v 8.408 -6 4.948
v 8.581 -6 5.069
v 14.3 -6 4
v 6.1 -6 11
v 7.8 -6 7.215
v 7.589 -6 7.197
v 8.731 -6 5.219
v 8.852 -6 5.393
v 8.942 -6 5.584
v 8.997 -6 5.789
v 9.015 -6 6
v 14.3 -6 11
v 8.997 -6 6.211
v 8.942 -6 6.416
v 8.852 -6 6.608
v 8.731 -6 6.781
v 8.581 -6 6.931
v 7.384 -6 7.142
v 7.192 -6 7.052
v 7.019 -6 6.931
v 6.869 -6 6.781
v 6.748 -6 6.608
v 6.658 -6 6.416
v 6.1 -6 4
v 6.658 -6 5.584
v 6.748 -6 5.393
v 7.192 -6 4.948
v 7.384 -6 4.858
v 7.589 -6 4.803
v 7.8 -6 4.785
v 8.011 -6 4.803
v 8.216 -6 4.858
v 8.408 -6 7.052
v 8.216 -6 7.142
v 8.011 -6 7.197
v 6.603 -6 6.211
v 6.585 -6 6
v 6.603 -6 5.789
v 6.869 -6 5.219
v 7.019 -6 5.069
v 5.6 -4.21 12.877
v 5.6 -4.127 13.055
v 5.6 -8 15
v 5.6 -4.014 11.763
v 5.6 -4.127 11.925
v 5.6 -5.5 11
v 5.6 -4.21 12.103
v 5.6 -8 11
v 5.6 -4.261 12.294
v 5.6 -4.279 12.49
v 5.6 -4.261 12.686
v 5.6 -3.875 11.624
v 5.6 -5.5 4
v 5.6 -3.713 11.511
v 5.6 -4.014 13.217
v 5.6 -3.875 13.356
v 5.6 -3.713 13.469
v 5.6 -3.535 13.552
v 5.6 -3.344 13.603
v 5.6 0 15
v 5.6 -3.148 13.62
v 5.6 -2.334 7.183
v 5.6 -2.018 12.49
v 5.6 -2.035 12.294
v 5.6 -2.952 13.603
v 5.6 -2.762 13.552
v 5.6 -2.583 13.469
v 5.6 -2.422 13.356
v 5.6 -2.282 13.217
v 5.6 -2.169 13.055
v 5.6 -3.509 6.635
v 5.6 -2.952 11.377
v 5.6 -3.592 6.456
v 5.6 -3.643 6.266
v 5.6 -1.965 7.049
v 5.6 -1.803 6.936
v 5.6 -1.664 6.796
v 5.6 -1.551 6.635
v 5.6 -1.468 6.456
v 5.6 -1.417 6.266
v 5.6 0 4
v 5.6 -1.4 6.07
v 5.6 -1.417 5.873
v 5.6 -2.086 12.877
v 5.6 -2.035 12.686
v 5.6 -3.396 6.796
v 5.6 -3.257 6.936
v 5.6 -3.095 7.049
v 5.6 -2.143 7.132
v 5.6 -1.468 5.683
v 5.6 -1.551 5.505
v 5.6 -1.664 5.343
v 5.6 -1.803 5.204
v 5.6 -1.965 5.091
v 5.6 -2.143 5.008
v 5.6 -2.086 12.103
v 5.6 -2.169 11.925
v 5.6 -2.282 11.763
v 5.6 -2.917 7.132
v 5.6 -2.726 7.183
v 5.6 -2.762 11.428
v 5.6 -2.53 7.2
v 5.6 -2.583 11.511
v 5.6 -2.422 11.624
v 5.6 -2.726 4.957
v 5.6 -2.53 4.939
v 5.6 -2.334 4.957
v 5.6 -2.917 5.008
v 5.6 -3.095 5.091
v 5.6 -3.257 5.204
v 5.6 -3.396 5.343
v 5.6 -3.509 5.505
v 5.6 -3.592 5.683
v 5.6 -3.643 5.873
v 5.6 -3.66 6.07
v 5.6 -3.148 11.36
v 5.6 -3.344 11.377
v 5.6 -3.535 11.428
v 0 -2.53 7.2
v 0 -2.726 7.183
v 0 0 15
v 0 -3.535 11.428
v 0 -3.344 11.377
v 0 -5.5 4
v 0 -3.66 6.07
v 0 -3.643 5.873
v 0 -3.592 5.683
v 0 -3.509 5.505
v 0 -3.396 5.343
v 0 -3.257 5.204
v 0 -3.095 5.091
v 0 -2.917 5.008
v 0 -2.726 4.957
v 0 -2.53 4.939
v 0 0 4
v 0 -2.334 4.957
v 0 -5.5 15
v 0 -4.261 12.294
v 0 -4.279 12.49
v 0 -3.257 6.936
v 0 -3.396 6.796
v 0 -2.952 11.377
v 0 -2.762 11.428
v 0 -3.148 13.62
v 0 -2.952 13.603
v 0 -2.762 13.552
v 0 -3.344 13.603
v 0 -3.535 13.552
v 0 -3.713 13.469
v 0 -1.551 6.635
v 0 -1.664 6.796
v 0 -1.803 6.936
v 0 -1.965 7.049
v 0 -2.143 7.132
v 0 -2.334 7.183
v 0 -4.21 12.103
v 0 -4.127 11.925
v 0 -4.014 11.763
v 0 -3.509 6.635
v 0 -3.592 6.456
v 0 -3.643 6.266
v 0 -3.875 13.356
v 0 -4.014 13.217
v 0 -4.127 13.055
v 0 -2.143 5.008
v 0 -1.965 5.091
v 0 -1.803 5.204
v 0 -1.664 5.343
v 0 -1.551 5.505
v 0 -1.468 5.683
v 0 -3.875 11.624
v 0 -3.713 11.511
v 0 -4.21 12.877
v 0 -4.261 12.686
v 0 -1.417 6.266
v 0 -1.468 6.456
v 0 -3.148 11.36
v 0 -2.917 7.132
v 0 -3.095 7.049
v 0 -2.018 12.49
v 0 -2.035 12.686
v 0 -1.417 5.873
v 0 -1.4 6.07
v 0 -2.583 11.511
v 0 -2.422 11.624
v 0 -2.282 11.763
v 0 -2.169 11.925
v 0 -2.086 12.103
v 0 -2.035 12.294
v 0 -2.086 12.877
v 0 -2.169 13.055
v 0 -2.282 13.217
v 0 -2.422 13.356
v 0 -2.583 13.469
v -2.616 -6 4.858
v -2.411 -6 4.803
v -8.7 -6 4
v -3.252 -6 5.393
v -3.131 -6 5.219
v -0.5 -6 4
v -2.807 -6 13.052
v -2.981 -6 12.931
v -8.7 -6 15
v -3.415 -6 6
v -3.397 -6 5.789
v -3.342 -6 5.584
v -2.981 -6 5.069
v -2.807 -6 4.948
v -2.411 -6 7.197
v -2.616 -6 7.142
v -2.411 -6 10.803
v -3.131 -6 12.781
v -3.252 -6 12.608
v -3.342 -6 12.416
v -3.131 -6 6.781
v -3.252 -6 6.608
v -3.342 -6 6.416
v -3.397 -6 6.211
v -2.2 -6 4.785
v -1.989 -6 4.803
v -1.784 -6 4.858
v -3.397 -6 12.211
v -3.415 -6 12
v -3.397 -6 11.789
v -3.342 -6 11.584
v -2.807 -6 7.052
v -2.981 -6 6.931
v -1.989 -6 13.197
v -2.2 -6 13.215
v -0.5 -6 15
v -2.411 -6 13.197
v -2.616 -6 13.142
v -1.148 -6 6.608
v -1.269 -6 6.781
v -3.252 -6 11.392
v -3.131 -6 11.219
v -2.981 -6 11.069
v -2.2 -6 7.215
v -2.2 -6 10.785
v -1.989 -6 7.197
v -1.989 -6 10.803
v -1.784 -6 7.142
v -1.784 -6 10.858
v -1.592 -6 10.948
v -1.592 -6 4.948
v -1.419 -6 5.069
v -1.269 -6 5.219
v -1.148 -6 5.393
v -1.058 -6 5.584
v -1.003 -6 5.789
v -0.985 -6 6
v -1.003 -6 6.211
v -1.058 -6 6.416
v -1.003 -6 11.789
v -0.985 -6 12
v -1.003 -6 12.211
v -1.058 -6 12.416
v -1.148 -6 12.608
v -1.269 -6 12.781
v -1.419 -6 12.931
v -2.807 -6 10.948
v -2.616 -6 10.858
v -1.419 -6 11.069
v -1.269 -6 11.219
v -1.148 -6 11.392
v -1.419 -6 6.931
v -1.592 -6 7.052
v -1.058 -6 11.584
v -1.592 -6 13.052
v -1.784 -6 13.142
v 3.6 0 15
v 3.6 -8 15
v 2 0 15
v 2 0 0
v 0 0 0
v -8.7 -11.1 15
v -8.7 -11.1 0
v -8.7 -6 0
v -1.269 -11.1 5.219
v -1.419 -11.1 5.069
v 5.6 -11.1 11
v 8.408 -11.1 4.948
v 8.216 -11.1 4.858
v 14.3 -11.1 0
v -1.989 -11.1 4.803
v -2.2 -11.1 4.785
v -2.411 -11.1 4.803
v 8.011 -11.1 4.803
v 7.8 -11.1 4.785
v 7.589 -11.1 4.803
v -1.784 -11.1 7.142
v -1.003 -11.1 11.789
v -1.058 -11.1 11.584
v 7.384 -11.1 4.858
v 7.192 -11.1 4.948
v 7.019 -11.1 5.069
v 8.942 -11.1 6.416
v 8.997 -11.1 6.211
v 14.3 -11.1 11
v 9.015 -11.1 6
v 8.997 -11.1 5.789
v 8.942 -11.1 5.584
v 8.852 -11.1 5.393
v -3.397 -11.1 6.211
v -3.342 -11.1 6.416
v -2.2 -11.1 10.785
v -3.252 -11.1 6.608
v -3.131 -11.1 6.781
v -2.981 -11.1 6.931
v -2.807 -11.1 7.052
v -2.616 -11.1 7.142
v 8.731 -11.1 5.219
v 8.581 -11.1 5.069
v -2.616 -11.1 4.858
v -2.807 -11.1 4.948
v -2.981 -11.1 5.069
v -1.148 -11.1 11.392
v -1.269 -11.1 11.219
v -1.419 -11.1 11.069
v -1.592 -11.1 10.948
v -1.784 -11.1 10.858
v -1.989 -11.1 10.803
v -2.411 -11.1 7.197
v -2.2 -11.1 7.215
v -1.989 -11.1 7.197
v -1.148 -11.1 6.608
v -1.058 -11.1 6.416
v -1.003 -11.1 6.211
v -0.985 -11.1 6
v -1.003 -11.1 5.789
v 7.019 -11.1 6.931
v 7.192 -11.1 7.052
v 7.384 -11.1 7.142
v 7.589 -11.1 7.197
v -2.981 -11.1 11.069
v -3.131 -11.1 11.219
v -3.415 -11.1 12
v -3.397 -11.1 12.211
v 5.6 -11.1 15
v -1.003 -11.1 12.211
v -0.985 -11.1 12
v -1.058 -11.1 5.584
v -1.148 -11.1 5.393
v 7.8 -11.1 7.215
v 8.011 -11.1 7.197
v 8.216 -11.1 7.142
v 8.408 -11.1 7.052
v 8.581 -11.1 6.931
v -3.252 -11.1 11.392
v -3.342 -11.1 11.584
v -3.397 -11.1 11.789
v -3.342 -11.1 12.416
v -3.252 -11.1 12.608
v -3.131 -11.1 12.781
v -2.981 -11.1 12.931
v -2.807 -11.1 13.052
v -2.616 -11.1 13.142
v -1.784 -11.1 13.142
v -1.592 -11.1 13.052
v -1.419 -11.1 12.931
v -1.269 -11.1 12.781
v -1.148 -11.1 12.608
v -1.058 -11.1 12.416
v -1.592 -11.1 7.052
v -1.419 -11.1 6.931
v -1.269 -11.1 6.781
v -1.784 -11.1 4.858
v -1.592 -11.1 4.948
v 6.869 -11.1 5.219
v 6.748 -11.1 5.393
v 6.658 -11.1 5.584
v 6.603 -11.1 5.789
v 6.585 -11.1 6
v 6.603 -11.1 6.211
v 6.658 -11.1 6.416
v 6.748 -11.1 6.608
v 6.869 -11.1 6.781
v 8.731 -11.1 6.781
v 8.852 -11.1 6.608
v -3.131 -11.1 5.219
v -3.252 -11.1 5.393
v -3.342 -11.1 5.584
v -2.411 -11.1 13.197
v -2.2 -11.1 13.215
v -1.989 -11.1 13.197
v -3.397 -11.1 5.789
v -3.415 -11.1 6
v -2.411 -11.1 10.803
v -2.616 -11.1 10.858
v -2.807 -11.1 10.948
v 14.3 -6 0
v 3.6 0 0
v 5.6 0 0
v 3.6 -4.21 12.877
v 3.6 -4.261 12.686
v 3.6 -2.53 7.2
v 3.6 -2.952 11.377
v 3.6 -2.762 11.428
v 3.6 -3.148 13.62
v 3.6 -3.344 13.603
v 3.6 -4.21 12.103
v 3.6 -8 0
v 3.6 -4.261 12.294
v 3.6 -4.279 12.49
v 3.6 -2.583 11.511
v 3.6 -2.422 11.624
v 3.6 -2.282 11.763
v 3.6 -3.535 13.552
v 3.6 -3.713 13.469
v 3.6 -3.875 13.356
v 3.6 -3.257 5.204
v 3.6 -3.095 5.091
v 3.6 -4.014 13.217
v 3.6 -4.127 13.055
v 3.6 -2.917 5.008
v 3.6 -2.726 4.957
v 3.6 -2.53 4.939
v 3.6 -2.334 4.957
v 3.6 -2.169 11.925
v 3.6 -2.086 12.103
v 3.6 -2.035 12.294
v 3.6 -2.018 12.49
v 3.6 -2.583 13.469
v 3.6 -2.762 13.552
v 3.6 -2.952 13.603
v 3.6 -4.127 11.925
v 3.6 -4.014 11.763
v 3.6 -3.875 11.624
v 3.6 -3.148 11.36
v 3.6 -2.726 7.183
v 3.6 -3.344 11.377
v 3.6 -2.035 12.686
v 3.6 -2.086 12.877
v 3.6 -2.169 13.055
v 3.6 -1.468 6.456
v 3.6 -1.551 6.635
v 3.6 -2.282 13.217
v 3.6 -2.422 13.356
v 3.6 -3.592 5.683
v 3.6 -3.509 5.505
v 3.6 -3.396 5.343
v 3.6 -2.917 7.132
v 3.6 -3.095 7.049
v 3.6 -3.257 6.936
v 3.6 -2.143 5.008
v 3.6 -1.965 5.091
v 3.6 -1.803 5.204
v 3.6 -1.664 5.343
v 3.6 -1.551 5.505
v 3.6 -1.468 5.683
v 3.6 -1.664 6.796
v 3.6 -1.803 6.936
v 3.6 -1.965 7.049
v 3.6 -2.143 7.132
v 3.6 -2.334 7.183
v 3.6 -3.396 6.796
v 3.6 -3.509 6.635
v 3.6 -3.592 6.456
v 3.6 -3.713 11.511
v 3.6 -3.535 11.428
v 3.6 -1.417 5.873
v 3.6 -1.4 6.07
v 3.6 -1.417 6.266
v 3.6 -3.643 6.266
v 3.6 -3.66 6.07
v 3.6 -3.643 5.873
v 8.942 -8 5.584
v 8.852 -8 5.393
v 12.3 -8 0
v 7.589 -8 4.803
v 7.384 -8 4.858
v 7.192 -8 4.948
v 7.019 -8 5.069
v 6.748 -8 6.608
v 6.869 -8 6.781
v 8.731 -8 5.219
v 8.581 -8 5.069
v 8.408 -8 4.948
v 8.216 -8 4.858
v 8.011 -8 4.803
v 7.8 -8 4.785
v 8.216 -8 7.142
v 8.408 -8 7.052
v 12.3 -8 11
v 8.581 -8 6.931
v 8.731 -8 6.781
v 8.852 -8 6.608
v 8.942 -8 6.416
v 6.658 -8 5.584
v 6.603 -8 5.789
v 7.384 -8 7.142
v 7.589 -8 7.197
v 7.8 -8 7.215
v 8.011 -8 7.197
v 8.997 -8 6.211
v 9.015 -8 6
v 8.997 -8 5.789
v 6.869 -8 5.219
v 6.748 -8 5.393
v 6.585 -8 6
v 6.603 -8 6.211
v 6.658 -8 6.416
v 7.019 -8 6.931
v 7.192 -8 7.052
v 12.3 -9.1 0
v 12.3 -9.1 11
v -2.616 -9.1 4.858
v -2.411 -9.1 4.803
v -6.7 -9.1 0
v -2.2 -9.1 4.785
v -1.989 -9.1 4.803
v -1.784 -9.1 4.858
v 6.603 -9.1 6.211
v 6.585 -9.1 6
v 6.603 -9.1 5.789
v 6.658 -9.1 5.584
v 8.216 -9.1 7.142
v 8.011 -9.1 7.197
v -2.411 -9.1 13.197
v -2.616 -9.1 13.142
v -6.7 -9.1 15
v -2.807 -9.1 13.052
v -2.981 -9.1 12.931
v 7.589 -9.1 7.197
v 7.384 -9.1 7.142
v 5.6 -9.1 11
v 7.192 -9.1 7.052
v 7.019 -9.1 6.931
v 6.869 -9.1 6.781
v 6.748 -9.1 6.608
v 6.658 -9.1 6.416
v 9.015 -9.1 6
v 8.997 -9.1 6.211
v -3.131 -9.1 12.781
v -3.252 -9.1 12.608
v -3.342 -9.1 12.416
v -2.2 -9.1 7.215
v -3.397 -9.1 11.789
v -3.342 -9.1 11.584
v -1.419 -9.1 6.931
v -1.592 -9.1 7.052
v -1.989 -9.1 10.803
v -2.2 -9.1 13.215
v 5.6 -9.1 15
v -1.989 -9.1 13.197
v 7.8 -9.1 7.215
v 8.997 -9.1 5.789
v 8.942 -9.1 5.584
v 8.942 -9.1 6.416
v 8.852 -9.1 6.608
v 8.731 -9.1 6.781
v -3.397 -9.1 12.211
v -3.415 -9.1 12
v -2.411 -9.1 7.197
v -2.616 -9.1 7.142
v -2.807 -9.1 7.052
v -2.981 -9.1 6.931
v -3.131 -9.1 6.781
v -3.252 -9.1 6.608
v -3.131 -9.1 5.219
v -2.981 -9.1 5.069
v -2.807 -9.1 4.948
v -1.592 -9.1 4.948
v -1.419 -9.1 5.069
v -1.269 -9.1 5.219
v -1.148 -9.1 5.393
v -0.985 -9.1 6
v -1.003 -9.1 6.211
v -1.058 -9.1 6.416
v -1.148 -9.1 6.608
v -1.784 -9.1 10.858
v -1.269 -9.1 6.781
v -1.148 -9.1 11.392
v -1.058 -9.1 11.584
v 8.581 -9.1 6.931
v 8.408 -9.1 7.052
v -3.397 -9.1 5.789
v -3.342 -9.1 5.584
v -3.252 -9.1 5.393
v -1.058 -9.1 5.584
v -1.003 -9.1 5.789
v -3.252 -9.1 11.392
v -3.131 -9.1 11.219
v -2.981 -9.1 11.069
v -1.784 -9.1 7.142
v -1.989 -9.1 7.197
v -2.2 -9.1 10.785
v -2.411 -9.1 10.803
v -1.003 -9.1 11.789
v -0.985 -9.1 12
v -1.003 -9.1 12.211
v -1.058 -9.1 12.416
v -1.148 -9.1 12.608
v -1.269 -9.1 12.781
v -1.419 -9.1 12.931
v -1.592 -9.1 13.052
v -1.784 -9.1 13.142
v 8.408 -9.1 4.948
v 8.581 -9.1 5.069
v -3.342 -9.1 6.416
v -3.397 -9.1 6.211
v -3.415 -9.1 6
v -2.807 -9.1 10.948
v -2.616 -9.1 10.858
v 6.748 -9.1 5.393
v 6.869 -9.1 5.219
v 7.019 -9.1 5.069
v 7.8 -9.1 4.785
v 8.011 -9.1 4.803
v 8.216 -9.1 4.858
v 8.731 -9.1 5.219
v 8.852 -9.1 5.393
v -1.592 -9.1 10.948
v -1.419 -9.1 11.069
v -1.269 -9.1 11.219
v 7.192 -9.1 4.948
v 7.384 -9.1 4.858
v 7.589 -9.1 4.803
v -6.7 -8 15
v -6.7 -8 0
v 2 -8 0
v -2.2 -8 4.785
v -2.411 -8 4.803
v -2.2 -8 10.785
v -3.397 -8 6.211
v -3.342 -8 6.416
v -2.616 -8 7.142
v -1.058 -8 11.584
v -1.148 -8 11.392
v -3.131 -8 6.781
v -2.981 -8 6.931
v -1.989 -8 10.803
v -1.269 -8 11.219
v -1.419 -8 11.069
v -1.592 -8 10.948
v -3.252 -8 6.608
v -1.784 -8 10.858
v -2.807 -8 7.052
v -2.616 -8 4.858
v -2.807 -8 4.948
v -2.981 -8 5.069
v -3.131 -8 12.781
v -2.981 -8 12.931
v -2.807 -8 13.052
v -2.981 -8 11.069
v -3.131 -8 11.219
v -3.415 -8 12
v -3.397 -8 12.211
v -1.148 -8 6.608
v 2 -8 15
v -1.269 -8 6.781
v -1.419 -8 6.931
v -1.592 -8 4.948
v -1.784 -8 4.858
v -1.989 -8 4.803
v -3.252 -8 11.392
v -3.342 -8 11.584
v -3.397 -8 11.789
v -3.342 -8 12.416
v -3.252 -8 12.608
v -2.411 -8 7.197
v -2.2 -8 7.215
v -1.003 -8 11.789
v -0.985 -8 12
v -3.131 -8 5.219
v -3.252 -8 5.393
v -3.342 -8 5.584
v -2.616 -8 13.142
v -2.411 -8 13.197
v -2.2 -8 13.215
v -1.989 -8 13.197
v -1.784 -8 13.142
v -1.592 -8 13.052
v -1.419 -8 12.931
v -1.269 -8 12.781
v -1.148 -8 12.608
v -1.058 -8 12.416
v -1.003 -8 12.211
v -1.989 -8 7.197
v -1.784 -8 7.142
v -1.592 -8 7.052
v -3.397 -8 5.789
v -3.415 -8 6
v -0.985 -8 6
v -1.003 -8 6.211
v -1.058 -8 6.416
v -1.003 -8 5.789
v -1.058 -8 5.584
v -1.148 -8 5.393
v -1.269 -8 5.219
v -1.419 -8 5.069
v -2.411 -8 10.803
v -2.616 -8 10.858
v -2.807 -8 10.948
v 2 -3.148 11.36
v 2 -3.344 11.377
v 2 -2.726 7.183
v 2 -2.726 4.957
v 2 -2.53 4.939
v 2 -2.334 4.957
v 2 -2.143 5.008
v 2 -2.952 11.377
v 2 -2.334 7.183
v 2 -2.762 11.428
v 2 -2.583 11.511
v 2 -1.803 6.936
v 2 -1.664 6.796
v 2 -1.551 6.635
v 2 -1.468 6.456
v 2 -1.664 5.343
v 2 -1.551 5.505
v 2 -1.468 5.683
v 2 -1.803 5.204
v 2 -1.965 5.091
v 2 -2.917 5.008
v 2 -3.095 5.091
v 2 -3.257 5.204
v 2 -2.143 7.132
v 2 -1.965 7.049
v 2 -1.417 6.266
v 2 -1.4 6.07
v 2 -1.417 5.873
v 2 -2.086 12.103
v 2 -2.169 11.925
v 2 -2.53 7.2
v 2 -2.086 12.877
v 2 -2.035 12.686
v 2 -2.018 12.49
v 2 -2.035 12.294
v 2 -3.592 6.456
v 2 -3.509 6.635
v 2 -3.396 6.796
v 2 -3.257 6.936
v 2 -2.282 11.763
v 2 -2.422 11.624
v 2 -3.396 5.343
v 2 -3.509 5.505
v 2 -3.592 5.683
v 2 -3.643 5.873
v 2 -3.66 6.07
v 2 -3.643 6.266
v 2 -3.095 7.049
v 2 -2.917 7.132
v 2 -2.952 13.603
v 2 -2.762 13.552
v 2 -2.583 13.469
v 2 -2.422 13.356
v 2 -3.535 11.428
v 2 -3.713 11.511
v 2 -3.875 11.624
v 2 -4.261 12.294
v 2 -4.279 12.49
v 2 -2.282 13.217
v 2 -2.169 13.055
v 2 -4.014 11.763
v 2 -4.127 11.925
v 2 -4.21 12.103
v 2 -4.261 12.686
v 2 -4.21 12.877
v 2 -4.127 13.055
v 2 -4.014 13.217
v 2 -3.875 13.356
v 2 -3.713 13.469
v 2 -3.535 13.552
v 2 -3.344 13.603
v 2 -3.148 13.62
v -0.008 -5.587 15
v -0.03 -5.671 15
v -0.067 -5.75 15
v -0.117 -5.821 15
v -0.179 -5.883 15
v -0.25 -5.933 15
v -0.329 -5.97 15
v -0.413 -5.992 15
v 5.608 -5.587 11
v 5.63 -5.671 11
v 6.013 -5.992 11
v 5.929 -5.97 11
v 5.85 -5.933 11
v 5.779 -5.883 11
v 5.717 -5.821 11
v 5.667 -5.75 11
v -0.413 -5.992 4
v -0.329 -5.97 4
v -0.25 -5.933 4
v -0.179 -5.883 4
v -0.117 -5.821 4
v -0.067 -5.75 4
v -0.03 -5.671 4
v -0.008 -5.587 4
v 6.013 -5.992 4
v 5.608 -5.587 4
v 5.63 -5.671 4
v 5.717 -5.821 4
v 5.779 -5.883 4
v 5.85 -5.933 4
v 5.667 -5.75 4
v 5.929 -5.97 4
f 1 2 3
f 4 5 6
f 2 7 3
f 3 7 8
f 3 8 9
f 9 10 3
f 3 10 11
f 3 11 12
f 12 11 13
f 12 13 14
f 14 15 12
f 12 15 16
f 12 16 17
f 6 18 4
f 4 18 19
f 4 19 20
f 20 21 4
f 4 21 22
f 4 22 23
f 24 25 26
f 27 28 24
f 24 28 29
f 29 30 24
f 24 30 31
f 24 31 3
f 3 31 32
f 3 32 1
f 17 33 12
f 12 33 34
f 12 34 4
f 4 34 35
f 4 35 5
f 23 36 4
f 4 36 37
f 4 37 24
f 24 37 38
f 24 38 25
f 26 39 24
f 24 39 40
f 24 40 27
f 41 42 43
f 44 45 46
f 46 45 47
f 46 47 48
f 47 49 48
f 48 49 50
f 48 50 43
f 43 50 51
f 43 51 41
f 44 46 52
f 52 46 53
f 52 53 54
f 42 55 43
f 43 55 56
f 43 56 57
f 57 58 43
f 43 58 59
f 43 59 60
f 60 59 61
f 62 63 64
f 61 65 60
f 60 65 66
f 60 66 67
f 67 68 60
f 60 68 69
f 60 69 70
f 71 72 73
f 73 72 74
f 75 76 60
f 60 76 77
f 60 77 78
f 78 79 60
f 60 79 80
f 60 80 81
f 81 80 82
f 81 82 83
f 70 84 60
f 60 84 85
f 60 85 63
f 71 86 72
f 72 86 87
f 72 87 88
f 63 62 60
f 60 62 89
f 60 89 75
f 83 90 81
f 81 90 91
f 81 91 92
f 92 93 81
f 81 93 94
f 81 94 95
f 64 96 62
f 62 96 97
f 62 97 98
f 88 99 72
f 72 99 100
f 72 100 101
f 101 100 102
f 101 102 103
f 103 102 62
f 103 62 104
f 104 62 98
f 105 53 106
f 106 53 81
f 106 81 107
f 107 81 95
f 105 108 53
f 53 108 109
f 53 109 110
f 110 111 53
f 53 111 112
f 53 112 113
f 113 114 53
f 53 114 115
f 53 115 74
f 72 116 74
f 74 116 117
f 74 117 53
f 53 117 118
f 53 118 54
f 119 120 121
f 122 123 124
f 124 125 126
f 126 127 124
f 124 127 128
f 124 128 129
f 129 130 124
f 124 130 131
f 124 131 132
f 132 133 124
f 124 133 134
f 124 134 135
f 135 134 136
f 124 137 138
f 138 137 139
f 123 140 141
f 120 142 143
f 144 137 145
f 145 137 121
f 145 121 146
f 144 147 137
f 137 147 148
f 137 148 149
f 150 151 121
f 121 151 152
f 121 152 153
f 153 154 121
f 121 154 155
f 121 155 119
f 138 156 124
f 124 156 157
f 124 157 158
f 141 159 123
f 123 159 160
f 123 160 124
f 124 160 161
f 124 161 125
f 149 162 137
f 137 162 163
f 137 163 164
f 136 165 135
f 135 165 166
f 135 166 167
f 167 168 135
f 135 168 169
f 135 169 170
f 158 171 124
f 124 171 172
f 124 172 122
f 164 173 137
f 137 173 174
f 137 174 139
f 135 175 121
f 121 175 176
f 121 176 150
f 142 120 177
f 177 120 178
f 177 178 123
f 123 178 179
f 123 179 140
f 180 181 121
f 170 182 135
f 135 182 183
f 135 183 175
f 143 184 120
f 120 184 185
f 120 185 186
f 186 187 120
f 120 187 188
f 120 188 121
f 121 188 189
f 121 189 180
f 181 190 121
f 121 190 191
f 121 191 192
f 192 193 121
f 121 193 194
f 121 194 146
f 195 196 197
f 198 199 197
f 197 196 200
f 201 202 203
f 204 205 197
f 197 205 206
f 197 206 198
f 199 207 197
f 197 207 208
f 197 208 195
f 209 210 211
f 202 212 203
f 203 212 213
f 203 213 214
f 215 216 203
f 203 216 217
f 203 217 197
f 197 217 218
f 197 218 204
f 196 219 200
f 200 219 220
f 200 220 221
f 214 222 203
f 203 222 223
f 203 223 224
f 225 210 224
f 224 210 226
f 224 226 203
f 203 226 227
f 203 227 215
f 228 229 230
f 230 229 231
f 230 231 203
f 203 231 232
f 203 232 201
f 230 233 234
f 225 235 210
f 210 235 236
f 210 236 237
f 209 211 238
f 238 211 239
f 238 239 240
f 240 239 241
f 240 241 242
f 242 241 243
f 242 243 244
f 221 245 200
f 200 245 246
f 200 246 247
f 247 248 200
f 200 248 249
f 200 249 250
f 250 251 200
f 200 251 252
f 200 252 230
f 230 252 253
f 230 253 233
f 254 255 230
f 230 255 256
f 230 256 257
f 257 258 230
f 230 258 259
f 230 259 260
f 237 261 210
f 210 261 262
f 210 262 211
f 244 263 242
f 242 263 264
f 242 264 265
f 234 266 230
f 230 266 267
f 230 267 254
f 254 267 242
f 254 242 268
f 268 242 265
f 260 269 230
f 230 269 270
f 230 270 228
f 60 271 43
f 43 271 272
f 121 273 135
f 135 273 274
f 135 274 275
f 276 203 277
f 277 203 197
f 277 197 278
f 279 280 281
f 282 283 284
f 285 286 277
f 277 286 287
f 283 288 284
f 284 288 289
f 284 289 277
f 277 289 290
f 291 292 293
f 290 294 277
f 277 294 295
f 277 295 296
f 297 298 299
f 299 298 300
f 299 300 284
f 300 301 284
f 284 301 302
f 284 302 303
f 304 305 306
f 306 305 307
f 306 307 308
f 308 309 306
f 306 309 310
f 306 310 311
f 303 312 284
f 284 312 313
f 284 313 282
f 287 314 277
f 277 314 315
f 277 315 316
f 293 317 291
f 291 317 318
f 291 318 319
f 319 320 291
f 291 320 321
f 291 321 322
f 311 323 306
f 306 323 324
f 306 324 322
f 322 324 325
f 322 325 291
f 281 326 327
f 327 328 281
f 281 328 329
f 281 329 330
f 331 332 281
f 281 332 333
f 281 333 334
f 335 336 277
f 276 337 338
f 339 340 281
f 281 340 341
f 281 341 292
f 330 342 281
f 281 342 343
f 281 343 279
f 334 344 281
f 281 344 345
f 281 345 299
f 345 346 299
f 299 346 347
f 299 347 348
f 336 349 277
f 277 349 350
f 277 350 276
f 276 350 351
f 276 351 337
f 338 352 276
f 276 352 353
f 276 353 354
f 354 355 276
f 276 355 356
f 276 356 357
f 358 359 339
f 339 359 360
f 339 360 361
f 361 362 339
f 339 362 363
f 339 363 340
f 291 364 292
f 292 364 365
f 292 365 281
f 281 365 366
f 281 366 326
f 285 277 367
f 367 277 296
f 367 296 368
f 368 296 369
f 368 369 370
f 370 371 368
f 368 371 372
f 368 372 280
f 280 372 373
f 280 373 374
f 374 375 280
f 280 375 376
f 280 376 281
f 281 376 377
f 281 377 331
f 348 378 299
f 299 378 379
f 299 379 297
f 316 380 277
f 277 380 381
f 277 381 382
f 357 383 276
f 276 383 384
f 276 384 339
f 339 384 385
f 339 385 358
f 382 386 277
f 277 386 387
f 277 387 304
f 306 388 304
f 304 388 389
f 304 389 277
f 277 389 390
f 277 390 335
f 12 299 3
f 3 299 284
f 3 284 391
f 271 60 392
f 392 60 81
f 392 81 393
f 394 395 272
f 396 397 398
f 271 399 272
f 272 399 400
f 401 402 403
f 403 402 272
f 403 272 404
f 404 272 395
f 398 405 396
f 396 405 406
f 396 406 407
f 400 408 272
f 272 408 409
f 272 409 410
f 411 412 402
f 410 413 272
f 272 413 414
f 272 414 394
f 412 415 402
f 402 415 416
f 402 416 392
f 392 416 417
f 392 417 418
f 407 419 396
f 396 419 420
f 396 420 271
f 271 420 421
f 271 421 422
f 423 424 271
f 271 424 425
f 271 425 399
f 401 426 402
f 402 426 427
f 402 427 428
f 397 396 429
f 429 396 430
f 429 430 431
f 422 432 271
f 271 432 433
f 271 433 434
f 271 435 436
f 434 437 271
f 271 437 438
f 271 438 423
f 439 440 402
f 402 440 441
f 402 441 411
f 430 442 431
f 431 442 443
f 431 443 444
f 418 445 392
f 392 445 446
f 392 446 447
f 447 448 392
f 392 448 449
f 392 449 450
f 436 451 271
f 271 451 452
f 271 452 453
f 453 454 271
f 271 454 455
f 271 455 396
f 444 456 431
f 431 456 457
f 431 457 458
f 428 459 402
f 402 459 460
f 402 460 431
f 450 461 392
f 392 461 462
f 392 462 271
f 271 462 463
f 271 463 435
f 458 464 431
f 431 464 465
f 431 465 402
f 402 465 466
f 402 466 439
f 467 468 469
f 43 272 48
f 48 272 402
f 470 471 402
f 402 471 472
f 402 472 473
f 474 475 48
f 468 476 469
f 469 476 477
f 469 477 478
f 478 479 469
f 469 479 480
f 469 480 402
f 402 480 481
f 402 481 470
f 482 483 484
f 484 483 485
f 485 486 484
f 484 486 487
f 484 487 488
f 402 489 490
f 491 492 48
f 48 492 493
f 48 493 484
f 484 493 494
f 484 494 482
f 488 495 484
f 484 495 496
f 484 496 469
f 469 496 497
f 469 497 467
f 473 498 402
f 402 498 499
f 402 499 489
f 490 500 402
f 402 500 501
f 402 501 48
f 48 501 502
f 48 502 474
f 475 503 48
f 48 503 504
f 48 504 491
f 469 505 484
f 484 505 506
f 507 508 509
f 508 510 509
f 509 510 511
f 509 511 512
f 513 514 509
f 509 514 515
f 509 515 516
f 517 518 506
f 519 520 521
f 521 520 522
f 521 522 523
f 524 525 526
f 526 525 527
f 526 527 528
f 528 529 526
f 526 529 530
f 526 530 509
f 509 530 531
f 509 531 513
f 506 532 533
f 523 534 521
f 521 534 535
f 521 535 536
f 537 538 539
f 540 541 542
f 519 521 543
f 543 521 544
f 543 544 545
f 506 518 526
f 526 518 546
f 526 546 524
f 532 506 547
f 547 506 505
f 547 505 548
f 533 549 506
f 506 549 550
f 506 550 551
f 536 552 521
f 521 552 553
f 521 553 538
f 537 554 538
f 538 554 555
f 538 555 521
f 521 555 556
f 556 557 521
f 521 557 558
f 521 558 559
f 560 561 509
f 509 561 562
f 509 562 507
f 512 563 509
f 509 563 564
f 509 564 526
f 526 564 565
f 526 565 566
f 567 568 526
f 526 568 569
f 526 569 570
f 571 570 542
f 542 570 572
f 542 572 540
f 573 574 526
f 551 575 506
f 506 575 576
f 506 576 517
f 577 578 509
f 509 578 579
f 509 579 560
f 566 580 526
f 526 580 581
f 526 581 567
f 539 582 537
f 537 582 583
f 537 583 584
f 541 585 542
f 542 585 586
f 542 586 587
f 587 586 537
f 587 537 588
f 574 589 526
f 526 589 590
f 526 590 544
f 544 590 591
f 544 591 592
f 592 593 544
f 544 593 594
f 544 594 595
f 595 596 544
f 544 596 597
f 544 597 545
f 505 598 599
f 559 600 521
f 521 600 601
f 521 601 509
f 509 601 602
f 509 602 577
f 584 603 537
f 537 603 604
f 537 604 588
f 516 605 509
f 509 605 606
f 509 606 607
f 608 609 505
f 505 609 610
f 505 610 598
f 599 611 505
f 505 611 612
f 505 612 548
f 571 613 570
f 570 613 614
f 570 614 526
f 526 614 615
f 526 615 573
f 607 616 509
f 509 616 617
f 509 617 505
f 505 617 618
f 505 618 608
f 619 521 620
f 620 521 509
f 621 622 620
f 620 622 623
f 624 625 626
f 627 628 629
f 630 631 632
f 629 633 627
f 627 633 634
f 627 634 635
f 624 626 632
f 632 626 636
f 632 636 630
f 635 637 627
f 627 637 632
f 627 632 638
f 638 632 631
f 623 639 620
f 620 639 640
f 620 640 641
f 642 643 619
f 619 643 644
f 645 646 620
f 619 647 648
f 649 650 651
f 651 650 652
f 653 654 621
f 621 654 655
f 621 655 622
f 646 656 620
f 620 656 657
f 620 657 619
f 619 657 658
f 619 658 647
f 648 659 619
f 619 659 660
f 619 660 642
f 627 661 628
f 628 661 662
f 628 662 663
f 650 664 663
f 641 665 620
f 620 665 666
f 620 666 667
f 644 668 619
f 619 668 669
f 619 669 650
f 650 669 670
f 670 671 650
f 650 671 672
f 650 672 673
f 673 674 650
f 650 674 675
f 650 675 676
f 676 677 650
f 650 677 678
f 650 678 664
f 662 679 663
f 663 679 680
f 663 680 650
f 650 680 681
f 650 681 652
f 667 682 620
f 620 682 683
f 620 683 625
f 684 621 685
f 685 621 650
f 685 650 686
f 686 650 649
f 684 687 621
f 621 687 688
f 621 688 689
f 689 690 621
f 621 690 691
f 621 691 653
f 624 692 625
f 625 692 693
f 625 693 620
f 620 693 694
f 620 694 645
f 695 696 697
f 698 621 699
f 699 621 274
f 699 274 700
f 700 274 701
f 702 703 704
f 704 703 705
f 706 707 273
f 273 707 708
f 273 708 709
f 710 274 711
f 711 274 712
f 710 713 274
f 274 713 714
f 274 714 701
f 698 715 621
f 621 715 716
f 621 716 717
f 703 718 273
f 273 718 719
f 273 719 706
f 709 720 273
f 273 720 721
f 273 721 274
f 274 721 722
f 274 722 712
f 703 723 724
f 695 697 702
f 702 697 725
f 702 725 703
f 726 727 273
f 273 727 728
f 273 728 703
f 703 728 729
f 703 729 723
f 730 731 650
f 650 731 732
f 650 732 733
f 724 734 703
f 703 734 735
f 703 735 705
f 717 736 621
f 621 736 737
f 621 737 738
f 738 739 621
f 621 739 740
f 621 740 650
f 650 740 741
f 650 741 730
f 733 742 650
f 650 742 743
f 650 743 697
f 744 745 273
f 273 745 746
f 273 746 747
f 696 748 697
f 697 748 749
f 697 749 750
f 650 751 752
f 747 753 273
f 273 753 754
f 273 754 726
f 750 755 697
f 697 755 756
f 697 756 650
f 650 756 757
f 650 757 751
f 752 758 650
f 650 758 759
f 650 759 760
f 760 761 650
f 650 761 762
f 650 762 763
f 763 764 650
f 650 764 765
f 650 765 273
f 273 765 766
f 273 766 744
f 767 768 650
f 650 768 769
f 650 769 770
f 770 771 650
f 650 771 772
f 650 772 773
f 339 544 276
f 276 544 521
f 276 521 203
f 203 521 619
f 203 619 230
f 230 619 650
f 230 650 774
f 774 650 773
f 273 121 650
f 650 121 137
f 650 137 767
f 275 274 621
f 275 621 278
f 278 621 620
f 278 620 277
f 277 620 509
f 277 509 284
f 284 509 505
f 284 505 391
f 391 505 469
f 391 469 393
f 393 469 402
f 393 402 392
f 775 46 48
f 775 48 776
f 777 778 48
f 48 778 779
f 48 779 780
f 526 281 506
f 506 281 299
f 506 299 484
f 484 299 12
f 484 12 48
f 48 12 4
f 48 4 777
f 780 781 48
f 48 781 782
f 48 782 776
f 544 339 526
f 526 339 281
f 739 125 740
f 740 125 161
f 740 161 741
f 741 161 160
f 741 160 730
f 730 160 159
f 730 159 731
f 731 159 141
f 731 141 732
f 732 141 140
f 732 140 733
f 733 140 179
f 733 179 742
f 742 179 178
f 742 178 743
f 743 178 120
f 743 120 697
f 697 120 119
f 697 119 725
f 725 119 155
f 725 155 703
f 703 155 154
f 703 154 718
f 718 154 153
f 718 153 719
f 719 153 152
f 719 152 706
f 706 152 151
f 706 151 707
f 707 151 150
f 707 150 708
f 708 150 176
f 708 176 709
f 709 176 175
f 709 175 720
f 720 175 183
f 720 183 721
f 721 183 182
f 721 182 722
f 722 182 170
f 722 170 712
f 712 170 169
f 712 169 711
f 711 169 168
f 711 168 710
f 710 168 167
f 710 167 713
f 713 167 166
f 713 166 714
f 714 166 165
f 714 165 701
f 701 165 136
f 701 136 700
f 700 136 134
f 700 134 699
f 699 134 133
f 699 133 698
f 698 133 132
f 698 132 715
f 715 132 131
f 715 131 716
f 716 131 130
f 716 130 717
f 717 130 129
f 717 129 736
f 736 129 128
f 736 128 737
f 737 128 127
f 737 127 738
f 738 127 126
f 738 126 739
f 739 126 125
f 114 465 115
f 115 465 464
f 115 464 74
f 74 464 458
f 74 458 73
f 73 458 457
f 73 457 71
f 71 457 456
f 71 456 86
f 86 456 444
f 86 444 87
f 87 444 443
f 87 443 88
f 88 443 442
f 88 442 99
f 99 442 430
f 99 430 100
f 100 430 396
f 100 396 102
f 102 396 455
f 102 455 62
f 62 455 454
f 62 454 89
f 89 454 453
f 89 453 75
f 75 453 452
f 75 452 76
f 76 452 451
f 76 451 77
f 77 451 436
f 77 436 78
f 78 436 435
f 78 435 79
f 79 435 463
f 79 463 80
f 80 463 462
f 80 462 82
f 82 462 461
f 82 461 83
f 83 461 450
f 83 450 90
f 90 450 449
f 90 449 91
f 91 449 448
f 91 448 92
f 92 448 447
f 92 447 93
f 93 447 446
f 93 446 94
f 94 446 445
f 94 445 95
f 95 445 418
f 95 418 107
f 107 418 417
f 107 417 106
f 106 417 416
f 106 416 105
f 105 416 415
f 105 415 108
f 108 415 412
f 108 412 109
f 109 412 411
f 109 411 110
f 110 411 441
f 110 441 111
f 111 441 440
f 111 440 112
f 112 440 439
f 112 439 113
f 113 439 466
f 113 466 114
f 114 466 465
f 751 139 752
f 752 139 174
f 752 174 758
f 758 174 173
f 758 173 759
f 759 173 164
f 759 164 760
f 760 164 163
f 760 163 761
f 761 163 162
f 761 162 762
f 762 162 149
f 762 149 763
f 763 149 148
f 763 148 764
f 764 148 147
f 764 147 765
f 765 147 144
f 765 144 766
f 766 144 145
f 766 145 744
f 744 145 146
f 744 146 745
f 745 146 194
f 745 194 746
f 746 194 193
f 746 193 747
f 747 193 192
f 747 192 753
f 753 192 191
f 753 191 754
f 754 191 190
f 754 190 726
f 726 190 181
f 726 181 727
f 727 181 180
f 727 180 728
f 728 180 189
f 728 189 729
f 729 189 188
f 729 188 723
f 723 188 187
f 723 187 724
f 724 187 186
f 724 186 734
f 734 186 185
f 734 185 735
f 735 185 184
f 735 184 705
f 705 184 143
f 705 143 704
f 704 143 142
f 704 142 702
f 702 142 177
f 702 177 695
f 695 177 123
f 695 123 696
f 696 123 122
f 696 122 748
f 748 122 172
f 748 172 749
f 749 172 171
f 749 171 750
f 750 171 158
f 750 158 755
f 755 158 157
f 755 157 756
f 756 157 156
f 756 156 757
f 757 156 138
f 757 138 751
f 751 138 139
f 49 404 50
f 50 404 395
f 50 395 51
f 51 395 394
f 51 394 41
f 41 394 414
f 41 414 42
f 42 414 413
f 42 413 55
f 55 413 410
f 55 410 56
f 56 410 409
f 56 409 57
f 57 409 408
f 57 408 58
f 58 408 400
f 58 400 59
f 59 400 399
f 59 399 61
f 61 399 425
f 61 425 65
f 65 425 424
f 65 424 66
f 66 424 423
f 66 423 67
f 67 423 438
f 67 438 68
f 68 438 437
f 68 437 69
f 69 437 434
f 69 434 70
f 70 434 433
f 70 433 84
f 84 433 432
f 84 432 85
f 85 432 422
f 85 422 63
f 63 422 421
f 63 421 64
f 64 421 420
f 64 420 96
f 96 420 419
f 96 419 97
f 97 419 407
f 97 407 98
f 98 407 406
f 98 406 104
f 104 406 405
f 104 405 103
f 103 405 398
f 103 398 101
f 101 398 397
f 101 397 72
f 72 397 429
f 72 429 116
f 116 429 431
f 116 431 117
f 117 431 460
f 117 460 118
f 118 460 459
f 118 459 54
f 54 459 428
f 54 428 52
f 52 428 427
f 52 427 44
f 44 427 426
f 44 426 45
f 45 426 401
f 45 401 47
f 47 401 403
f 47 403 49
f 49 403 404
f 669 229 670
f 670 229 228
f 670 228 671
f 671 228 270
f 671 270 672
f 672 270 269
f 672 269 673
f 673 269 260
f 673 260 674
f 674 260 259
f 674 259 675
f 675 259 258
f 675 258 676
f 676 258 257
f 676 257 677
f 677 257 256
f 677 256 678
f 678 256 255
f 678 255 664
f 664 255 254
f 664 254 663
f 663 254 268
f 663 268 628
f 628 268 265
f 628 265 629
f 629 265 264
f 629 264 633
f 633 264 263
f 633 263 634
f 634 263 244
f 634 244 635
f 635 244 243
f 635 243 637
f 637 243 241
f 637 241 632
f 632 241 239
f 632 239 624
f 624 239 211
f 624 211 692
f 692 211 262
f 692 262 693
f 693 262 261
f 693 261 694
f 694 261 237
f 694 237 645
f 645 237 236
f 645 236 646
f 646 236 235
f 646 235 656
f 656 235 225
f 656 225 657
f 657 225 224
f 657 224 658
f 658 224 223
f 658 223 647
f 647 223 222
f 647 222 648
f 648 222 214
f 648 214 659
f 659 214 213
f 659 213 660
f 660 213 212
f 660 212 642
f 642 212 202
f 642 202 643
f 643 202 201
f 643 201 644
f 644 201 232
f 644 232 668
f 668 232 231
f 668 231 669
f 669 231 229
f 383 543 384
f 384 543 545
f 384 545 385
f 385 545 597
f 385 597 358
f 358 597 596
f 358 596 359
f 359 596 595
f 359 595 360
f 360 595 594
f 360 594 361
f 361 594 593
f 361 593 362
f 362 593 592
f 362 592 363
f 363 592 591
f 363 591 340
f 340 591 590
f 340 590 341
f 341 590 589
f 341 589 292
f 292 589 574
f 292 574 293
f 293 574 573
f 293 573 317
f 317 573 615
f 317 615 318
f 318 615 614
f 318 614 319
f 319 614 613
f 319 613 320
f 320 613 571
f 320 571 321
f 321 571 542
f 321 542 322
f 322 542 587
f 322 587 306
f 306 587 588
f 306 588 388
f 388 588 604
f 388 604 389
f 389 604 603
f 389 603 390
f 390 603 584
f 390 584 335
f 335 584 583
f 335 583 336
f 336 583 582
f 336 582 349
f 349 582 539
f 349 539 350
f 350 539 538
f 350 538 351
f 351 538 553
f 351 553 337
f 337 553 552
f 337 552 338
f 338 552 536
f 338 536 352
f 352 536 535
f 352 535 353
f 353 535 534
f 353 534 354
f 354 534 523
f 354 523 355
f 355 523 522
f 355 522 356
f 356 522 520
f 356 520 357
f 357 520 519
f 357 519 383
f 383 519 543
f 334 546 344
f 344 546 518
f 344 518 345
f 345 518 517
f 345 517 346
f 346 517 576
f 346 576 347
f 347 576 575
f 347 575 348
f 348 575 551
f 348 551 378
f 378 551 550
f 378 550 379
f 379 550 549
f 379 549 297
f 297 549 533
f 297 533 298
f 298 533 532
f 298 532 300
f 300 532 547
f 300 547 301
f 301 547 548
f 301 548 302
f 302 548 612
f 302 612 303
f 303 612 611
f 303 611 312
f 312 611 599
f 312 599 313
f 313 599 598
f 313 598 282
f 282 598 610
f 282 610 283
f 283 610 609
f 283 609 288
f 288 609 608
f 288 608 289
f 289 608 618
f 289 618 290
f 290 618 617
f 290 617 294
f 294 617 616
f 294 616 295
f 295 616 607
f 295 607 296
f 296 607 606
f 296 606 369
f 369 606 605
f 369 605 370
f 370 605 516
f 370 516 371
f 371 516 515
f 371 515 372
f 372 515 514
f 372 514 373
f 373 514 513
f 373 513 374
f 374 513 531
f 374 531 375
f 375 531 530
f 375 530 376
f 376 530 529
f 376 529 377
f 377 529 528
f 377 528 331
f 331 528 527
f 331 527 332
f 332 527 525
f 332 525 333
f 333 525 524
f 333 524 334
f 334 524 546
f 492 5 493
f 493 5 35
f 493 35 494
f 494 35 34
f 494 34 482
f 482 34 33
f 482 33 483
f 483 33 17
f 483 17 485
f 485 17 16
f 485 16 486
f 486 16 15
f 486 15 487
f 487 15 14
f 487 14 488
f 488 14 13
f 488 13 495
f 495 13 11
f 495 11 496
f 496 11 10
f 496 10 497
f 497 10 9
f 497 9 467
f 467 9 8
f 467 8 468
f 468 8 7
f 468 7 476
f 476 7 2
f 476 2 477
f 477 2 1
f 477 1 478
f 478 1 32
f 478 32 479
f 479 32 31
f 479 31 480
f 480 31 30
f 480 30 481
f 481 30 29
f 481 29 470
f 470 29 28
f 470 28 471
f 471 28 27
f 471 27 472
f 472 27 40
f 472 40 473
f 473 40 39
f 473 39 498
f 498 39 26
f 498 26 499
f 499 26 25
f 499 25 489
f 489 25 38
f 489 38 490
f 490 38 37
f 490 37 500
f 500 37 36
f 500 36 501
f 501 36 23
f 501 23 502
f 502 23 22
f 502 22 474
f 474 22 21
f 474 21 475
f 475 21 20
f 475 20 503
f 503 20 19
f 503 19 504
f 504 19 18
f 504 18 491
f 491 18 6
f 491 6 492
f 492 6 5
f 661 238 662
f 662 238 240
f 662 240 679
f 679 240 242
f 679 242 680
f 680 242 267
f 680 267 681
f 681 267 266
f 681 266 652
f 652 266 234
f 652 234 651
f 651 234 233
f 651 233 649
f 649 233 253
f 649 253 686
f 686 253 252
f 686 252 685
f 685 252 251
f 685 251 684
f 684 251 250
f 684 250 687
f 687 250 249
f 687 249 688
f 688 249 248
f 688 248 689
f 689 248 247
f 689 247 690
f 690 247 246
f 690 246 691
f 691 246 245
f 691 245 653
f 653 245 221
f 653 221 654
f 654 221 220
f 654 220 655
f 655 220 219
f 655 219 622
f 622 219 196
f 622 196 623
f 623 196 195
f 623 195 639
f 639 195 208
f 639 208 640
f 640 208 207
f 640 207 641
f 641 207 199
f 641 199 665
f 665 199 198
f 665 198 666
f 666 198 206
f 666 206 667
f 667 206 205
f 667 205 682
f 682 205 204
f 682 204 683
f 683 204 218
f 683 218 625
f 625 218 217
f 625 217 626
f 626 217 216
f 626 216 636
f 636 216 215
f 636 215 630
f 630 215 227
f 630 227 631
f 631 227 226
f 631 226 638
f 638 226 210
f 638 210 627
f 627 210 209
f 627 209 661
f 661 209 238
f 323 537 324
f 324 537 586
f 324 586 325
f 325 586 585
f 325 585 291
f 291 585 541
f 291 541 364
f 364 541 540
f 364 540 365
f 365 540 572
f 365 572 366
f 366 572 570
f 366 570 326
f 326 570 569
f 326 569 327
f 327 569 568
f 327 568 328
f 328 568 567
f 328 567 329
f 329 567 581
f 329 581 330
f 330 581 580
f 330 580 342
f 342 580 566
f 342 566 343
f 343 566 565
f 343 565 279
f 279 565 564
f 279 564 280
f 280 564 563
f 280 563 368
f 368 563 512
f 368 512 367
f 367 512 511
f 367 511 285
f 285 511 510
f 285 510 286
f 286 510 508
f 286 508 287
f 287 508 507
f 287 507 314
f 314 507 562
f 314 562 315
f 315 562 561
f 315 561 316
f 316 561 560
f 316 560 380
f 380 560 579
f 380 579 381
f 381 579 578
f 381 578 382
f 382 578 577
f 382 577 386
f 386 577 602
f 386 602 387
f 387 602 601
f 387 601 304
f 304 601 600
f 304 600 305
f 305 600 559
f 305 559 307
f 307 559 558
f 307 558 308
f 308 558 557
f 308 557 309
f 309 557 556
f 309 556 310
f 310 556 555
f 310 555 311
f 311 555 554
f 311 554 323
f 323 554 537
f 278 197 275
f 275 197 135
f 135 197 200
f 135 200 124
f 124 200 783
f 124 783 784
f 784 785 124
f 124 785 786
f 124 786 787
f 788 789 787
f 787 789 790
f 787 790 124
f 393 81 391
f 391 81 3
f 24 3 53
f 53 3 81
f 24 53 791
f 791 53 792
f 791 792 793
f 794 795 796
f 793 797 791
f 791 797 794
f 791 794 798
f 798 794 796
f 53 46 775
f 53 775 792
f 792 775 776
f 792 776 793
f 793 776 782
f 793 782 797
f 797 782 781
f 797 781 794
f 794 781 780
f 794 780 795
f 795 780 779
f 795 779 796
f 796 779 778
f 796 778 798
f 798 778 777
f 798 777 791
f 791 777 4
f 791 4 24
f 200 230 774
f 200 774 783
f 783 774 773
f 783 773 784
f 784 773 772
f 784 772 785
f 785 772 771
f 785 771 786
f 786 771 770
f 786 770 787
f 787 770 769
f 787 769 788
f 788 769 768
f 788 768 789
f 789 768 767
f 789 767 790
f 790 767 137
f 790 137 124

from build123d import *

# Parameters (mm, degrees)
BOSS_EXTRUDE1_DEPTH = 15
SKETCH2_W           = 8.7
SKETCH2_H           = 4
CUT_EXTRUDE1_DEPTH  = 15
SKETCH4_R           = 1.1303
CUT_EXTRUDE2_DEPTH  = 15
SKETCH5_R           = 1.215
CUT_EXTRUDE3_DEPTH  = 15
BOSS_EXTRUDE2_DEPTH = 2
FILLET2_R           = 0.5


with BuildPart() as part:
    # Sketch1 → Boss-Extrude1 (new body)
    with BuildSketch(Plane.XY):
        Polygon((0, 0), (0, -6), (-8.7, -6), (-8.7, -11.1), (14.3, -11.1), (14.3, -6), (5.6, -6), (5.6, 0), (3.6, 0), (3.6, -3.541064843), (3.6, -8), (12.3, -8), (12.3, -9.1), (-6.7, -9.1), (-6.7, -8), (2, -8), (2, 0), align=None)
    extrude(amount=BOSS_EXTRUDE1_DEPTH)

    # Sketch2 → Cut-Extrude1 (cut)
    with BuildSketch(Plane(origin=(0, -6, 0), x_dir=(1, 0, 0), z_dir=(0, 1, 0))):
        with Locations((9.95, -13)):
            Rectangle(SKETCH2_W, SKETCH2_H)
    extrude(amount=-CUT_EXTRUDE1_DEPTH, mode=Mode.SUBTRACT)

    # Sketch4 → Cut-Extrude2 (cut)
    with BuildSketch(Plane.ZY):
        with Locations((12.49, -3.148205104)):
            Circle(SKETCH4_R)
        with Locations((6.069694521, -2.53)):
            Circle(SKETCH4_R)
    extrude(amount=-CUT_EXTRUDE2_DEPTH, mode=Mode.SUBTRACT)

    # Sketch5 → Cut-Extrude3 (cut)
    with BuildSketch(Plane(origin=(0, -6, 0), x_dir=(1, 0, 0), z_dir=(0, 1, 0))):
        with Locations((-2.2, -12)):
            Circle(SKETCH5_R)
        with Locations((7.8, -6)):
            Circle(SKETCH5_R)
        with Locations((-2.2, -6)):
            Circle(SKETCH5_R)
    extrude(amount=-CUT_EXTRUDE3_DEPTH, mode=Mode.SUBTRACT)

    # Sketch6 → Boss-Extrude2 (add, symmetric)
    with BuildSketch(Plane(origin=(0, 0, 2), x_dir=(-1, 0, 0), z_dir=(0, 0, -1))):
        Polygon((0, -6), (8.7, -6), (0, 0), align=None)
    boss_extrude2 = extrude(amount=BOSS_EXTRUDE2_DEPTH, both=True)

    # Mirror1: Boss-Extrude2 across plane
    add(boss_extrude2.mirror(Plane(origin=(2.8, 0, 0), x_dir=(0, 0, 1), z_dir=(1, 0, 0))))

    # Fillet2
    fillet2_edges = [part.edges().sort_by_distance(p)[0] for p in [
        (0, -6, 9.5),
        (5.6, -6, 7.5),
    ]]
    fillet(fillet2_edges, radius=FILLET2_R)


solid = part.part
